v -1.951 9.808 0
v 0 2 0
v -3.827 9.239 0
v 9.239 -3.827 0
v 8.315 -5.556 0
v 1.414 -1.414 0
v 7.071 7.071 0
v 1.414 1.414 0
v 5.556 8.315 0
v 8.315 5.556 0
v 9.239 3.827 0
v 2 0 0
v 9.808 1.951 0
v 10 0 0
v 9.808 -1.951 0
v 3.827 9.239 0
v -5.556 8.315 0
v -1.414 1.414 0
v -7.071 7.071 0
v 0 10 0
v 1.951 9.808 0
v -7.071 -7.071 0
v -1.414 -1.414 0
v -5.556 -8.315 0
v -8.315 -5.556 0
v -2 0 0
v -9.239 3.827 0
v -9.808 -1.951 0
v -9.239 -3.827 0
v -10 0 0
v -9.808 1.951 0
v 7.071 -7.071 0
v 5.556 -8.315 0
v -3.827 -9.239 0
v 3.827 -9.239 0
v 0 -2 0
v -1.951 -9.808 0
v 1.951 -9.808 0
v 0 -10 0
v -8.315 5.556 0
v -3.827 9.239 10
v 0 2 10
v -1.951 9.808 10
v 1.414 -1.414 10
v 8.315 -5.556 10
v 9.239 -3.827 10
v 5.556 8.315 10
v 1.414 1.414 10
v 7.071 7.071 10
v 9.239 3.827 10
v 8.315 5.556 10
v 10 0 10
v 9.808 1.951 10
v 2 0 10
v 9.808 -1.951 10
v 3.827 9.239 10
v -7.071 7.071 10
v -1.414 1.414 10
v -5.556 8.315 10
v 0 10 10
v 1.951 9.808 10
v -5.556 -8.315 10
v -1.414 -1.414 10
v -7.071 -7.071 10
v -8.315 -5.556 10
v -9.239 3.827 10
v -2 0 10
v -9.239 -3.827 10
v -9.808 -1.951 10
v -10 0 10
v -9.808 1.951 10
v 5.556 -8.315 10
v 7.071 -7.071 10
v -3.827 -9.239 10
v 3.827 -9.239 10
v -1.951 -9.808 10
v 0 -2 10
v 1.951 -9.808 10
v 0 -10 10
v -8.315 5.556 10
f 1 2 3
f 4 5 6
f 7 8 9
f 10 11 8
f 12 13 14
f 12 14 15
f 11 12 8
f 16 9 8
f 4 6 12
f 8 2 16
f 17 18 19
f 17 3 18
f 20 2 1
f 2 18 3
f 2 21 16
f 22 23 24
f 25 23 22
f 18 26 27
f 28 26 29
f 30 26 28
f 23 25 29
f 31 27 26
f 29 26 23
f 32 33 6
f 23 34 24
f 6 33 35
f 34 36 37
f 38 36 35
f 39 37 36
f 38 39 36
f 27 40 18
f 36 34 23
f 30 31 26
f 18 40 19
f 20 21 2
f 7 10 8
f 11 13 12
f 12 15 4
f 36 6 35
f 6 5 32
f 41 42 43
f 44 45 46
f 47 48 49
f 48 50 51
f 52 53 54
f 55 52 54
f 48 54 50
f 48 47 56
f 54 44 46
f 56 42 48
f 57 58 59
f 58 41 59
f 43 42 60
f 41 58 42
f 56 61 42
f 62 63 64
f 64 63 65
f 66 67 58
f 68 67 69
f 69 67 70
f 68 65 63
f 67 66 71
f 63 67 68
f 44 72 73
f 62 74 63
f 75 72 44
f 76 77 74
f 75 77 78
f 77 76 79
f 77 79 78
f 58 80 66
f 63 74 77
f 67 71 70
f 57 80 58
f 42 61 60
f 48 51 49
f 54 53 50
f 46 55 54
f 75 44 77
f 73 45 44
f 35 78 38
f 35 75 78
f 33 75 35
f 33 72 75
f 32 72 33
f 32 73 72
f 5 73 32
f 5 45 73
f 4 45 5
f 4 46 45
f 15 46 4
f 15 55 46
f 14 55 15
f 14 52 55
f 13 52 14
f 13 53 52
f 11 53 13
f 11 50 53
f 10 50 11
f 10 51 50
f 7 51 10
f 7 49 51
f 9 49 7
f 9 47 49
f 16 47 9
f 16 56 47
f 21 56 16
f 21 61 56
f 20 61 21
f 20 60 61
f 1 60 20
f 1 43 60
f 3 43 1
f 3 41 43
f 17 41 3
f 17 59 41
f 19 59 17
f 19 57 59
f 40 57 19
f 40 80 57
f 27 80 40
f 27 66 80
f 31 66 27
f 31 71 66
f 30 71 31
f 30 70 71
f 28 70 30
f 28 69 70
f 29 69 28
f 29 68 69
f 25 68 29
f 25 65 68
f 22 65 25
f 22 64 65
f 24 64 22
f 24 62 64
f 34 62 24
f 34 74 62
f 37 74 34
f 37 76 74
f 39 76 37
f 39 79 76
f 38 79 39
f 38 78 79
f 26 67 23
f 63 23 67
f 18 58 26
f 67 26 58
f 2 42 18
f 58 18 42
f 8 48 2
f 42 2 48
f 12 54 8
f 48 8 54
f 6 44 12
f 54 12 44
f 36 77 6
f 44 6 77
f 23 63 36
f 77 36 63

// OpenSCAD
linear_extrude(height=10) difference() {
  circle(d=20,$fn=32);
  circle(d=4,$fn=8);
}
